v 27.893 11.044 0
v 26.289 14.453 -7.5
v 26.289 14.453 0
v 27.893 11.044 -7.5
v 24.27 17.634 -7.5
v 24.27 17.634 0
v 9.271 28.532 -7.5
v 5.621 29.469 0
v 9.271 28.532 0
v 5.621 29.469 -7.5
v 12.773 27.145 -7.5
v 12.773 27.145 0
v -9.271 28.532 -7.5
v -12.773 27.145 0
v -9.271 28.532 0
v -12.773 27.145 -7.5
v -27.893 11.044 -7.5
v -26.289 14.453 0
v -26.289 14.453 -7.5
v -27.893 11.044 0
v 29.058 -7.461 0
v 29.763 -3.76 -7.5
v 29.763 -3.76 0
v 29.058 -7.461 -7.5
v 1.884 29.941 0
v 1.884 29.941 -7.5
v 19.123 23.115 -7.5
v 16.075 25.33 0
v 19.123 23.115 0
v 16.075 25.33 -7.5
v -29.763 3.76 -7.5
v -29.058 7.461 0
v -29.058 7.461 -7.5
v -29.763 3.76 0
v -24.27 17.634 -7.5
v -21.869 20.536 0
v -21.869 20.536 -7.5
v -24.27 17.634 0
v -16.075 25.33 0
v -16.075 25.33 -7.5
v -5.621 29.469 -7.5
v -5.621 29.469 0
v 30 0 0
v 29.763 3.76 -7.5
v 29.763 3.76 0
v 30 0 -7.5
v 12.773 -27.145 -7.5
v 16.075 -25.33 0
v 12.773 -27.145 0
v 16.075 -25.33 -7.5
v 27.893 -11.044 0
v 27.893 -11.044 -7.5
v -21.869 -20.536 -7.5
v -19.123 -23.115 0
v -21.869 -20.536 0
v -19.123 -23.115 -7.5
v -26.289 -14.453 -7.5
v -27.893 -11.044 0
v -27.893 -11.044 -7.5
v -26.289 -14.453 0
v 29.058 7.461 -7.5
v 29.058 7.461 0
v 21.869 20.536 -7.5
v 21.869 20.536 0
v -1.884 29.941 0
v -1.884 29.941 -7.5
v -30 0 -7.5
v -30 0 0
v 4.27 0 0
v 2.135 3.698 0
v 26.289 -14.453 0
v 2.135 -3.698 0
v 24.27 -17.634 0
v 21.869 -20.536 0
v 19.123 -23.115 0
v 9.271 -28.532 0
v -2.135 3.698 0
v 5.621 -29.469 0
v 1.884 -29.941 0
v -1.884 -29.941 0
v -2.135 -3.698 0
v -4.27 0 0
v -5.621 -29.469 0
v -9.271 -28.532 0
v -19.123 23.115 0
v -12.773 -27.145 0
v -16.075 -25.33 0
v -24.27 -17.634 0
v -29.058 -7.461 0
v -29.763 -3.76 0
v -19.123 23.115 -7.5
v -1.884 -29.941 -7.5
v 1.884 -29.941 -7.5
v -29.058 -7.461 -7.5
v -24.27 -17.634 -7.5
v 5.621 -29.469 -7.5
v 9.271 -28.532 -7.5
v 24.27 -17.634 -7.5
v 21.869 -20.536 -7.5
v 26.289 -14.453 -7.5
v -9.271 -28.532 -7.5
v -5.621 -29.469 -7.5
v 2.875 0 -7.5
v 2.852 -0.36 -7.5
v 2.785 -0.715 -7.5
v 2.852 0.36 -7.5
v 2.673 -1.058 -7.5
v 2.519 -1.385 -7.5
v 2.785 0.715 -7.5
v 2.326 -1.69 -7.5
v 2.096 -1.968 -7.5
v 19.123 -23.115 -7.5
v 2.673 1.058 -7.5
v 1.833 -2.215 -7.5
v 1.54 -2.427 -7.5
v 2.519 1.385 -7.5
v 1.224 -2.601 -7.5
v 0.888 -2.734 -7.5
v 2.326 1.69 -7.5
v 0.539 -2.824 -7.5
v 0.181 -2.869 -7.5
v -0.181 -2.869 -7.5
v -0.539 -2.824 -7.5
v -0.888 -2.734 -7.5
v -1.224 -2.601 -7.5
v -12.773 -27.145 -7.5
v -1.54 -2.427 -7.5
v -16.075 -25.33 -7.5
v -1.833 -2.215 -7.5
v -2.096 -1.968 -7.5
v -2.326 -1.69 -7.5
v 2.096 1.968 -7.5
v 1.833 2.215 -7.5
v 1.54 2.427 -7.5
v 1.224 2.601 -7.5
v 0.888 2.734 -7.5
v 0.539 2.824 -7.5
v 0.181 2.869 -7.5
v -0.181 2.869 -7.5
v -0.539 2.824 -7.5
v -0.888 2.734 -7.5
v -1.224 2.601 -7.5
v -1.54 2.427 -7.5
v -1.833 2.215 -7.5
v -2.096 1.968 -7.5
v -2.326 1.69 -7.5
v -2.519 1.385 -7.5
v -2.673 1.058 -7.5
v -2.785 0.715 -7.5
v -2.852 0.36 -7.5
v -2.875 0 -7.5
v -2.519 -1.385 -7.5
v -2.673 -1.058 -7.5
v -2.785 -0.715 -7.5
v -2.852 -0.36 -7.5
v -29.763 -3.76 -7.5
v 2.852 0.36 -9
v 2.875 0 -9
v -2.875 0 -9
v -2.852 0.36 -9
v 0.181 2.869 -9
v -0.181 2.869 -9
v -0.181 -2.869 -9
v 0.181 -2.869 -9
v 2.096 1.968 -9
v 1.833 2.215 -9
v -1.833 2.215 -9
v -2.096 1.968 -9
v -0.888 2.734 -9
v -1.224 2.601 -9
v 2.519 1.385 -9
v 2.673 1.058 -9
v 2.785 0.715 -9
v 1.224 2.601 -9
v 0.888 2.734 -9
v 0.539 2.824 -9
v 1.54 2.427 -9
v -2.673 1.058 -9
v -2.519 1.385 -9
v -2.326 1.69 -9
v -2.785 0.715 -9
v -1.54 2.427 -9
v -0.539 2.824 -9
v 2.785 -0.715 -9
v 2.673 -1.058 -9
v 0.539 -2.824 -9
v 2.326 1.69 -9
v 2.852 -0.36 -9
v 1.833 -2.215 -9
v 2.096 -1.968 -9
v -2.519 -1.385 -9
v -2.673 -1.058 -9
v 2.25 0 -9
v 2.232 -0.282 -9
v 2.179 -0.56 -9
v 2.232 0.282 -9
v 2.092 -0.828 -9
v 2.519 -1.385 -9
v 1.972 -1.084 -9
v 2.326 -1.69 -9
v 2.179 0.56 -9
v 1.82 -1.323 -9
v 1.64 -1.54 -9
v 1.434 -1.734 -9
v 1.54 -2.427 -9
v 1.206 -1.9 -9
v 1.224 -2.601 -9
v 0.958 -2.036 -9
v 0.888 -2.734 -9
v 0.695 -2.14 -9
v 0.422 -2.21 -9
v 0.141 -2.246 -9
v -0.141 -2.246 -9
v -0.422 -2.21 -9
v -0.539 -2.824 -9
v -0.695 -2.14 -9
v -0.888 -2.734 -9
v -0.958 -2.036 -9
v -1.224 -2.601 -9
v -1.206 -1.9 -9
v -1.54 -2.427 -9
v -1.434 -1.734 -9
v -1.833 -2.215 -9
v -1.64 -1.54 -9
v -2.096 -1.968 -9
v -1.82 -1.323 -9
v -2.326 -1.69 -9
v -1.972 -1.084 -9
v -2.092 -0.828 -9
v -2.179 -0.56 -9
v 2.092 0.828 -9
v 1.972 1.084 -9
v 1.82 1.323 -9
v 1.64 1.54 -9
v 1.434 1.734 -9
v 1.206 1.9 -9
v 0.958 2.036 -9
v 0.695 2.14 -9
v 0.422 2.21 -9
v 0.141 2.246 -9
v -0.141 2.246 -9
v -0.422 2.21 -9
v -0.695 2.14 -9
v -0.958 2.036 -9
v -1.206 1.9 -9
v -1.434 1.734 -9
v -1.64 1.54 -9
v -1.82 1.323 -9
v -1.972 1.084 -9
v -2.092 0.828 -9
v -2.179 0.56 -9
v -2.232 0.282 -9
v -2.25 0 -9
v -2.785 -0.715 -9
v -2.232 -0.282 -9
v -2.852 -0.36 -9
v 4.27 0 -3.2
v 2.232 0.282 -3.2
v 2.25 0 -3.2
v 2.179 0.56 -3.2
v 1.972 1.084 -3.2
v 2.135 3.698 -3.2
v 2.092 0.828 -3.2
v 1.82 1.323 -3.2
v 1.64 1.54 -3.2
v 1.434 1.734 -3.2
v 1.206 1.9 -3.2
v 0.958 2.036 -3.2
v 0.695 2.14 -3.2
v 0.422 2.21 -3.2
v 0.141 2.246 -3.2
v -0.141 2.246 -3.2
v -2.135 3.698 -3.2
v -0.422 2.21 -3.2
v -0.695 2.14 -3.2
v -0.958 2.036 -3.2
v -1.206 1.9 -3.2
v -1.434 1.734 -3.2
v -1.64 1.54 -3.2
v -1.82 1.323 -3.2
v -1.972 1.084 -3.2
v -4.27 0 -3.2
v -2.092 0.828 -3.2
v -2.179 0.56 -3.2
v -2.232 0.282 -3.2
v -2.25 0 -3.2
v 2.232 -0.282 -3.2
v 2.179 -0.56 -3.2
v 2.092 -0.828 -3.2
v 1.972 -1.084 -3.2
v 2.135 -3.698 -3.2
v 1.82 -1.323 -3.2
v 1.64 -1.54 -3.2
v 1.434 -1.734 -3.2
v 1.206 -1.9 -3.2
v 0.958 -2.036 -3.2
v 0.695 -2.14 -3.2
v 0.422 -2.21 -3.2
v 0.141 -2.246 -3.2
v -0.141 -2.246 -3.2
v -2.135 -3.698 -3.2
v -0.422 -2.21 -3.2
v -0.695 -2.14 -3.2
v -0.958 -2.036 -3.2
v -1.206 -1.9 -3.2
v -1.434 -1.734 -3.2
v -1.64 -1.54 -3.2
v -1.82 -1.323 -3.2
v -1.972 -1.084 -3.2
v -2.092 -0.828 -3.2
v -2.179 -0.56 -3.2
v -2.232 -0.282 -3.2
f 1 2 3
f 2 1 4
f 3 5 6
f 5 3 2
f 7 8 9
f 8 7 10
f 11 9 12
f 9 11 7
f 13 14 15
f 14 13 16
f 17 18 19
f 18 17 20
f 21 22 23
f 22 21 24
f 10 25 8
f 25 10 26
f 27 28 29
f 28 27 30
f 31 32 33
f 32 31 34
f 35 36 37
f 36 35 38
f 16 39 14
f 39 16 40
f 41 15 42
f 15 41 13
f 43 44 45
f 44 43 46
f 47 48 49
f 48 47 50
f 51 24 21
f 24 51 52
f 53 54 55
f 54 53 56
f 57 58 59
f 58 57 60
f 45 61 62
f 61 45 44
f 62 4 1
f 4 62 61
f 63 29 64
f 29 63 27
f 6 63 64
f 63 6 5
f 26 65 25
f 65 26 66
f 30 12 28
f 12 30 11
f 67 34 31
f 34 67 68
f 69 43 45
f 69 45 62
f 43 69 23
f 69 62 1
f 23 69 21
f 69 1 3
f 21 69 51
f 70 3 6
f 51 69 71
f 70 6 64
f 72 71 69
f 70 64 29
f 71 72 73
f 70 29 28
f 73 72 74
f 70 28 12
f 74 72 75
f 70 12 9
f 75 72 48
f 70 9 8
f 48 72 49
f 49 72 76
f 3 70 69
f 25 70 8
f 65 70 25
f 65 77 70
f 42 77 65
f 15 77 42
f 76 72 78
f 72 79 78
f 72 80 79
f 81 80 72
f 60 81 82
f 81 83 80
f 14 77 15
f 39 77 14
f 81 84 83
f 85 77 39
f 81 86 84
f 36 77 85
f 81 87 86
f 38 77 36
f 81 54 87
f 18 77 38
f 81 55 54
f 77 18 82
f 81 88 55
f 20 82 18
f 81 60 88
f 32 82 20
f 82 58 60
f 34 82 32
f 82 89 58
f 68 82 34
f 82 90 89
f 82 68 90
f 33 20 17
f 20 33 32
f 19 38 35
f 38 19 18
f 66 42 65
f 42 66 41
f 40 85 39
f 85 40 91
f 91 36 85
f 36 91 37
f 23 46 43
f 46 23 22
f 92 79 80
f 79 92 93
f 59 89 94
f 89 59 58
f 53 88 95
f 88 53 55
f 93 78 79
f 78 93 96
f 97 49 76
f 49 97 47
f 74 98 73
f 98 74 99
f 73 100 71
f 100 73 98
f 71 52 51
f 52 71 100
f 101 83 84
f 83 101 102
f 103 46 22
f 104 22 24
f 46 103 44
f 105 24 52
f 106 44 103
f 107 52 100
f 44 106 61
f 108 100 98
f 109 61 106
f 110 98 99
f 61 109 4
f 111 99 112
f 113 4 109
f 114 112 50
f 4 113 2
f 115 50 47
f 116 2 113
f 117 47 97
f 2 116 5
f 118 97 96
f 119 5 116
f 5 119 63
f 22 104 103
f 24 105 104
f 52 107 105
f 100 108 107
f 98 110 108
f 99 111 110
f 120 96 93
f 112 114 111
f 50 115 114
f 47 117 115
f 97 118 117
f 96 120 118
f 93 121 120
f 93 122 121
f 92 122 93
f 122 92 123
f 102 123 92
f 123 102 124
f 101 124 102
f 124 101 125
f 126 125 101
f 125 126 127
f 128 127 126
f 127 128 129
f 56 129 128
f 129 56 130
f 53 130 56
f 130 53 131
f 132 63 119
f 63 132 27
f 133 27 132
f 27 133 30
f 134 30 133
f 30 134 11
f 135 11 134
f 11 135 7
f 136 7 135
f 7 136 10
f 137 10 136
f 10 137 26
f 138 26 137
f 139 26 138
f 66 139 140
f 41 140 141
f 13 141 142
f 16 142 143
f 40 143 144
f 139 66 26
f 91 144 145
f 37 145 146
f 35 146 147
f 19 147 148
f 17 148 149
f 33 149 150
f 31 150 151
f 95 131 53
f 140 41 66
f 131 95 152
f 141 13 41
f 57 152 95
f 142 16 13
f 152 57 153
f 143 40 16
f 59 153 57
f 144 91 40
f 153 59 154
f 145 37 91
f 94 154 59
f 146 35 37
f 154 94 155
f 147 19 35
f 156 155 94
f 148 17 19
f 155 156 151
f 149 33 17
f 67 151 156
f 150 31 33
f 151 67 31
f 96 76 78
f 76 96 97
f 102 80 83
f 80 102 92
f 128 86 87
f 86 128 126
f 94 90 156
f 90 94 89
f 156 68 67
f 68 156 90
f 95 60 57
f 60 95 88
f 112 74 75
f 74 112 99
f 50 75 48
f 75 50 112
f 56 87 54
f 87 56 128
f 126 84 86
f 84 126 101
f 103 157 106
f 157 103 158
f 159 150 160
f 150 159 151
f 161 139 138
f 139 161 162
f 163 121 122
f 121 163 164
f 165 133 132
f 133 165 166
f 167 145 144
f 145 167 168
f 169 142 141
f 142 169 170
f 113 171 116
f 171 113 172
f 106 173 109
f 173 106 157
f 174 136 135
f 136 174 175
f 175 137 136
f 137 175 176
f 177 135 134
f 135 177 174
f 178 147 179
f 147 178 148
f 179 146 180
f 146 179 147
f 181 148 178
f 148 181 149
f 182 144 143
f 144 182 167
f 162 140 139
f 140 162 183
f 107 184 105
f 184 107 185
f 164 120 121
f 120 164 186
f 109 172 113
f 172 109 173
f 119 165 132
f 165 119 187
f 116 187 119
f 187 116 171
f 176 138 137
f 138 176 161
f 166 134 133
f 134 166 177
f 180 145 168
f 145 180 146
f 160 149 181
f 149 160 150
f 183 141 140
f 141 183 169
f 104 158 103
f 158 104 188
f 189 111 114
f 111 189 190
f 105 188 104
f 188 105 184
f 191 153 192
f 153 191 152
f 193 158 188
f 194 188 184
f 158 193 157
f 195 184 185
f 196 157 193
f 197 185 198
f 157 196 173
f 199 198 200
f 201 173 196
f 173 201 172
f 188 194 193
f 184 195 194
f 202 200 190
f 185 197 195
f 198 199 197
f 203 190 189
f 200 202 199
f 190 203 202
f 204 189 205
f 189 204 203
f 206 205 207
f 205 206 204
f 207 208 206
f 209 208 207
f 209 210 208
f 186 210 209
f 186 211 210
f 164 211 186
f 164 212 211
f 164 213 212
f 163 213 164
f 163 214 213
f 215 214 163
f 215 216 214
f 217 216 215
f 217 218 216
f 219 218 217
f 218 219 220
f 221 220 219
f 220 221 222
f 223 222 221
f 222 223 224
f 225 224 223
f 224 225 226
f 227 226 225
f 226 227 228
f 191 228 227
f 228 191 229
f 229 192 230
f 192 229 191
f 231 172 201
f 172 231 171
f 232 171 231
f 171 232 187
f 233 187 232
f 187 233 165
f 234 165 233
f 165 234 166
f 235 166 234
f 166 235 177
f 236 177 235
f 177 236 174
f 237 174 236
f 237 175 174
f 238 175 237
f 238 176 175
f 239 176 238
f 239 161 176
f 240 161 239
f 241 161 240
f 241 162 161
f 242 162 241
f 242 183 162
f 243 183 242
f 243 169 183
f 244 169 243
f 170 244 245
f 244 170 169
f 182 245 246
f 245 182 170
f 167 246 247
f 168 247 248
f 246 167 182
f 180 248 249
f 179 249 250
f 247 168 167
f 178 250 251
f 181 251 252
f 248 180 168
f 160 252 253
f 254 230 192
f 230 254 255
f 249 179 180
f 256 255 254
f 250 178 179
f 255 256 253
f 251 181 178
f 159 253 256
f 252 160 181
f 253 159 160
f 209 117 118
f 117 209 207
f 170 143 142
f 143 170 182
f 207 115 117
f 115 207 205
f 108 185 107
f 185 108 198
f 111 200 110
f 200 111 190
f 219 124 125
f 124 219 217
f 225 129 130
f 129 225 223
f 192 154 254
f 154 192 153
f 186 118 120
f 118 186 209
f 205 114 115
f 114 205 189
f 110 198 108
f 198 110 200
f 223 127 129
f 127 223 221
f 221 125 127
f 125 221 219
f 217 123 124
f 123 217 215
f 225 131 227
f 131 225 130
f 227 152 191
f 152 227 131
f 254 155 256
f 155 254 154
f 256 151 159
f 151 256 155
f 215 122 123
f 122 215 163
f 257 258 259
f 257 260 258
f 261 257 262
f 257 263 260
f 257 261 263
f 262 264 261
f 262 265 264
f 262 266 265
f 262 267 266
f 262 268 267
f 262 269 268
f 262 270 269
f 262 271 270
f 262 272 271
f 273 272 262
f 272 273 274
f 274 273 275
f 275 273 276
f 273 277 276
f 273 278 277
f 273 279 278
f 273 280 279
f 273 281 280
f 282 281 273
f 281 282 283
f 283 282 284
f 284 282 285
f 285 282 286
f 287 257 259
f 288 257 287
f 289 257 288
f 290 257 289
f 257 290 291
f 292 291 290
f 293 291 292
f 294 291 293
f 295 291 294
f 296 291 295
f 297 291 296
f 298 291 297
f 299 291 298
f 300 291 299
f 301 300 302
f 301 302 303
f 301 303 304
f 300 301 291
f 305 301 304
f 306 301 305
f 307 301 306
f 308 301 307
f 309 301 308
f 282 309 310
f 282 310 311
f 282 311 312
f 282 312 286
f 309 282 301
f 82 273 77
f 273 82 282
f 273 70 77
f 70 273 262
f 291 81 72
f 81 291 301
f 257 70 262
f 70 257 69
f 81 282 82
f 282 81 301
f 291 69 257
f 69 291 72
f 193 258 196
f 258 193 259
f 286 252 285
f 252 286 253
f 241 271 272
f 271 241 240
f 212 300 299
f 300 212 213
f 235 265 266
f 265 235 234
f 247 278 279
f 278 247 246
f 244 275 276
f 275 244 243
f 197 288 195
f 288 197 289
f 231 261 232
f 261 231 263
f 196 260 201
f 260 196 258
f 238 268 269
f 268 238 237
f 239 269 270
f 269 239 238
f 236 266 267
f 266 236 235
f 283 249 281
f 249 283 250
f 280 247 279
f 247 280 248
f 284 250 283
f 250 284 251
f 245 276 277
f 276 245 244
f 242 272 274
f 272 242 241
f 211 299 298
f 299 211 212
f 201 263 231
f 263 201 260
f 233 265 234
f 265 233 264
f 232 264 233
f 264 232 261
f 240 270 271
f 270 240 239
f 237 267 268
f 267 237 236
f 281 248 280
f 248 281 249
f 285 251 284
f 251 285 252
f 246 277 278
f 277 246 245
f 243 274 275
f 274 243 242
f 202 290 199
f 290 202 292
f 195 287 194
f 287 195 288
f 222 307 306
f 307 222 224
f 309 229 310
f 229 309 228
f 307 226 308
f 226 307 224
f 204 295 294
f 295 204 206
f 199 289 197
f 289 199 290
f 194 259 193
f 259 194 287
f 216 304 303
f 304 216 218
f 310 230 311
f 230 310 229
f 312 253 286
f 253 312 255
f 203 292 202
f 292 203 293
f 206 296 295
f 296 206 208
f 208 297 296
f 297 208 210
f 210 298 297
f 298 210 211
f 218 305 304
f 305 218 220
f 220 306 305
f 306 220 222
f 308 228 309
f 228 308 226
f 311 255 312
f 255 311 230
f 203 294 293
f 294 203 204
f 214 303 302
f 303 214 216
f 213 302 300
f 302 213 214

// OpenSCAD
$fn = 50;

difference() {
	union() {
		translate(v = [0, 0, -7.5]) {
			cylinder(h = 7.5, r = 30.0);
		}
		#translate(v = [0, 0, -9.0]) {
			cylinder(h = 9, r = 2.875);
		}
	}
	union() {
		translate(v = [0, 0, 0]) {
			rotate(a = [0, 0, 0]) {
				difference() {
					union() {
						translate(v = [0, 0, -3.2]) {
							linear_extrude(height = 3.2) {
								polygon(points = [[4.2698, 0.0], [2.1349000000000005, 3.697755269078796], [-2.134899999999999, 3.6977552690787965], [-4.2698, 5.228996902999369e-16], [-2.134900000000002, -3.6977552690787956], [2.1348999999999974, -3.697755269078798]]);
							}
						}
					}
					union();
				}
			}
		}
		#translate(v = [0, 0, -100.0]) {
			cylinder(h = 200, r = 2.25);
		}
	}
}
